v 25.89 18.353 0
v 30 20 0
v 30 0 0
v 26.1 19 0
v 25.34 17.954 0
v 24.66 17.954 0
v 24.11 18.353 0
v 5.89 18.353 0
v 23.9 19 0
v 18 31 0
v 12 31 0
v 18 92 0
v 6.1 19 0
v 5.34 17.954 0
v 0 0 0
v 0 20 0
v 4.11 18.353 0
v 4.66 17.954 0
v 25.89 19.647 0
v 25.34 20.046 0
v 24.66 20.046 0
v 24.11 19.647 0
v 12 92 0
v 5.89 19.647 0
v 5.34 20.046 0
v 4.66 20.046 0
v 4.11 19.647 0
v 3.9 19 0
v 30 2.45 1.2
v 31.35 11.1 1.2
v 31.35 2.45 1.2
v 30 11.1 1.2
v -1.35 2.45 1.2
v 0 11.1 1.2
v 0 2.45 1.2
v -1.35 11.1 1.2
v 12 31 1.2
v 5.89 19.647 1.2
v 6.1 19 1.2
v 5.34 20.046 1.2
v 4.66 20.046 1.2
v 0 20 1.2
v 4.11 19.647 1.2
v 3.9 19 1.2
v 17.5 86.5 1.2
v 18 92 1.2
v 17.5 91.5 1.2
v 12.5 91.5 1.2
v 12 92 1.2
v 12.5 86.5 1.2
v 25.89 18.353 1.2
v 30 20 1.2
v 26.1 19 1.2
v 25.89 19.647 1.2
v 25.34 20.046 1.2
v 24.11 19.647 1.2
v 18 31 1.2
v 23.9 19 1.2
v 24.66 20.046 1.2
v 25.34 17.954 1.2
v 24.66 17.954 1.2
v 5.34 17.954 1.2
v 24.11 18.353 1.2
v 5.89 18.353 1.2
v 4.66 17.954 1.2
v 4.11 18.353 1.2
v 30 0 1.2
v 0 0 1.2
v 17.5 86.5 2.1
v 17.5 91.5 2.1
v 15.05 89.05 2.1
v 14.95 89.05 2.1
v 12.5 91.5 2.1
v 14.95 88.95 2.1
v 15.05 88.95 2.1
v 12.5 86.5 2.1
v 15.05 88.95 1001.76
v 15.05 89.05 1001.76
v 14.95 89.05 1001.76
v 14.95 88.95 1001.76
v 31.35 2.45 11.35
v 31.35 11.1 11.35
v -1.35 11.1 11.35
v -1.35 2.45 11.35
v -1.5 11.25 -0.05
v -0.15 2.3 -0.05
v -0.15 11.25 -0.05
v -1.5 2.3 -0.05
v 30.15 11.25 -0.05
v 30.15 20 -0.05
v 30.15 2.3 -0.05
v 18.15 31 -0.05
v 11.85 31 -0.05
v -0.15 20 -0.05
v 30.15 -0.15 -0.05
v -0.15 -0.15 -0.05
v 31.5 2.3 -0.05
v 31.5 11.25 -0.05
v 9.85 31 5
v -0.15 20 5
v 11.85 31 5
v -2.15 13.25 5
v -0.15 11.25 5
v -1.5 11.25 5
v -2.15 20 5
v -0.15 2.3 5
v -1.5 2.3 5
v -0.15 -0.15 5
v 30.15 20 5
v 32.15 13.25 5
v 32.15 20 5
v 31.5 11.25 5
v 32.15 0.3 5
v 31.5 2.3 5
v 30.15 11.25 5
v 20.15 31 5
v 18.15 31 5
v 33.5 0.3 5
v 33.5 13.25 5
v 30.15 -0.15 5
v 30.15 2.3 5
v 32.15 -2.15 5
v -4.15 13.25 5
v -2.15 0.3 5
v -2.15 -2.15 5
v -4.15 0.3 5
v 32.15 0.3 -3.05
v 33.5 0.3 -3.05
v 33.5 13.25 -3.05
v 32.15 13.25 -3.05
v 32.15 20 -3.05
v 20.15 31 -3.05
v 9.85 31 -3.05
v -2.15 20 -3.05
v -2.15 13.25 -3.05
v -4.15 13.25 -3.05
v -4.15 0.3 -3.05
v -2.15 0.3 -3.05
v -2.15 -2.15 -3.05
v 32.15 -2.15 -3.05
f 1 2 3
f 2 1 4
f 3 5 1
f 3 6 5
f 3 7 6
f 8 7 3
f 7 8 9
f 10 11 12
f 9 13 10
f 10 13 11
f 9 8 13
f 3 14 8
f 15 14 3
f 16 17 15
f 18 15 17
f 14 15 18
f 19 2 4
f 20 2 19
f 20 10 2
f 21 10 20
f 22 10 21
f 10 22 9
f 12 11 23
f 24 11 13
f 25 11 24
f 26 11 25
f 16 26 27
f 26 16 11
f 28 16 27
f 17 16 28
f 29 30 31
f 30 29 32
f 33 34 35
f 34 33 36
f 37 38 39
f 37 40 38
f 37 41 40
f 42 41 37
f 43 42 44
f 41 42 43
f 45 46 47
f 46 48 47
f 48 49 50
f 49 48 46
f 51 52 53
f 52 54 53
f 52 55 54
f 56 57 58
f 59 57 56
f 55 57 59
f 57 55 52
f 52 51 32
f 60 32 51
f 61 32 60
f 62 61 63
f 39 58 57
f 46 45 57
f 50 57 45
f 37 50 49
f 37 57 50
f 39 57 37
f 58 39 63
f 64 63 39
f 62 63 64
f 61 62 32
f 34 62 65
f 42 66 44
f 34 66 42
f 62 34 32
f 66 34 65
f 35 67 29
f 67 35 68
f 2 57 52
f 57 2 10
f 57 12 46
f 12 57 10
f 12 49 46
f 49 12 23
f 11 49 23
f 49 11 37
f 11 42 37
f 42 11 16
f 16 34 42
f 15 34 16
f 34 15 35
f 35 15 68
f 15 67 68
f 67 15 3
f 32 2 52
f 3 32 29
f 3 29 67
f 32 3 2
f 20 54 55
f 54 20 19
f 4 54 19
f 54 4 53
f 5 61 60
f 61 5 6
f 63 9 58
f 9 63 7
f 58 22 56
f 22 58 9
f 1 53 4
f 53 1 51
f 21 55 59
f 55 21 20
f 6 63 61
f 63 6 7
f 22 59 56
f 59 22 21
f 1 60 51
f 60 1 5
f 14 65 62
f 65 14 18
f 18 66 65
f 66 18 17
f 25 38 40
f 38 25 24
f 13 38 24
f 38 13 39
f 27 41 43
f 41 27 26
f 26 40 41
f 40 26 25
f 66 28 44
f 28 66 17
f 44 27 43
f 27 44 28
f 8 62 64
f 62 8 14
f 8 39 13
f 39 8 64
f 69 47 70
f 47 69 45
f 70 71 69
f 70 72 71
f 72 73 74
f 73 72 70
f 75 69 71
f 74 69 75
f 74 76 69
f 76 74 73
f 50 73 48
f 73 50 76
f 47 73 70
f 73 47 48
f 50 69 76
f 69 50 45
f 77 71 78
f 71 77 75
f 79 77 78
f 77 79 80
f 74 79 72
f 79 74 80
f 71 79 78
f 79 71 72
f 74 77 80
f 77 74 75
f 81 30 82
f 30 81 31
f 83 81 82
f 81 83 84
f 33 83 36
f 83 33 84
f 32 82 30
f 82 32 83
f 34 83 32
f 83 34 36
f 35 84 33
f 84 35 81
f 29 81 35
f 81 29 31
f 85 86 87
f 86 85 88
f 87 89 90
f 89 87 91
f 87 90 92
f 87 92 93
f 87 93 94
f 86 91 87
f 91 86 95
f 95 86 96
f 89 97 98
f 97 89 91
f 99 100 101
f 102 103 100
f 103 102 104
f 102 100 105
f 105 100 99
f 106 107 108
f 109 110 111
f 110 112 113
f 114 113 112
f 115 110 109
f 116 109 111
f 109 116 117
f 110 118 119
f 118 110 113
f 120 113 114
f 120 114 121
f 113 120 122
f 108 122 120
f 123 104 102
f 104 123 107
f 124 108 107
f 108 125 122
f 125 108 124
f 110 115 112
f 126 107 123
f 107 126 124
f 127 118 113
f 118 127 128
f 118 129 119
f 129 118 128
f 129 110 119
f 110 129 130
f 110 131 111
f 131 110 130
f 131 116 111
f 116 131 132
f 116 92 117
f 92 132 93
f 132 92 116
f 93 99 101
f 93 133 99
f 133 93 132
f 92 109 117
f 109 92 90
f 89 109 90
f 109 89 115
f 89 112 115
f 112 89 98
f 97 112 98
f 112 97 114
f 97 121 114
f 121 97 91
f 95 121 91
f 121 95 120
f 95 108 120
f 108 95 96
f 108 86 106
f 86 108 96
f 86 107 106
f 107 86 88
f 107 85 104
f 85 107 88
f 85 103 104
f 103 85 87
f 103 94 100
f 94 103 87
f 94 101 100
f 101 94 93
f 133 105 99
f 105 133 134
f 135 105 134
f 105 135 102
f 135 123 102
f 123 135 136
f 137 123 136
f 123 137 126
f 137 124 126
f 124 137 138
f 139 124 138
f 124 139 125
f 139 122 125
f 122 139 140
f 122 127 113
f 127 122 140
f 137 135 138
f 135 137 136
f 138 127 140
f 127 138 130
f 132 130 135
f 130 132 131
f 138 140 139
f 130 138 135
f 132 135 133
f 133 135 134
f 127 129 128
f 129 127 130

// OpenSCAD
// ----- ----- Declaração de Variáveis ----- ----- //
res=10;
folga1=0.15;
folga2=0.05;

base_B=30;
base_b=6;
alt_trap=11;
l_senis=61;
l_cil_senis=19;
entre_cil=20;
r_cil=2.2/2;
li_senis=20;
esp_senis=1.2;

esp_bar=2;
alt_bar=5;
alt_bar2=3;
x_bar=5;
y_bar=5;
z_bar=5;

x_cnct=32.7;
y_cnct=8.65;
z_cnct=11.35-esp_senis;
li_cnct_senis=2.45;

x_chip=5;
y_chip=5;
z_chip=0.9;

x_FSV=0.1;
y_FSV=0.1;
z_FSV=0.01;

where_y_FSV=li_senis+alt_trap+l_senis-3;
where_z_FSV=esp_senis+0.9-0.35;

// ----- ----- Chip ----- ----- //
translate([base_B/2-x_chip/2,where_y_FSV-y_chip/2,esp_senis])cube([x_chip,y_chip,z_chip]);

// ----- ----- FSV ----- ----- //
#translate([base_B/2-x_FSV/2,where_y_FSV-y_FSV/2,where_z_FSV])cube([x_FSV,y_FSV,z_FSV]);
#translate([base_B/2-x_FSV/2,where_y_FSV-y_FSV/2,z_FSV+where_z_FSV])cube([x_FSV,y_FSV,1000]);

// ----- ----- PCB ----- ----- //
difference(){
    linear_extrude(esp_senis)
    polygon(points=[[0,0],
                    [base_B,0],
                    [base_B,li_senis],
                    [base_B/2+base_b/2,li_senis+alt_trap],
                    [base_B/2+base_b/2,li_senis+alt_trap+l_senis],
                    [base_B/2-base_b/2,li_senis+alt_trap+l_senis],
                    [base_B/2-base_b/2,li_senis+alt_trap],
                    [0,li_senis]]);
    #translate([base_B/2+entre_cil/2,l_cil_senis,0])cylinder(esp_senis,r_cil,r_cil,$fn=res);
    #translate([base_B/2-entre_cil/2,l_cil_senis,0])cylinder(esp_senis,r_cil,r_cil,$fn=res);
}

// ----- ----- Conector ----- ----- //
translate([base_B/2-x_cnct/2,li_cnct_senis,esp_senis])cube([x_cnct,y_cnct,z_cnct]);


// ----- ----- Suporte para a PCB ----- ----- //
translate([0,0,-folga2])
linear_extrude(alt_bar+folga2)
polygon(points=[[-folga1,-folga1],
                [base_B+folga1,-folga1],
                [base_B+folga1,li_cnct_senis-folga1],//
                [base_B/2+x_cnct/2+folga1,li_cnct_senis-folga1],//
                [base_B/2+x_cnct/2+folga1,li_cnct_senis+y_cnct+folga1],//
                [base_B+folga1,li_cnct_senis+y_cnct+folga1],//
                [base_B+folga1,li_senis],
                [base_B/2+base_b/2+folga1,li_senis+alt_trap],
                [base_B/2+base_b/2+folga1+esp_bar,li_senis+alt_trap],
                [base_B+folga1+esp_bar,li_senis],
                [base_B+folga1+esp_bar,li_cnct_senis+y_cnct+folga1+esp_bar],//
                [base_B/2+x_cnct/2+folga1+esp_bar,li_cnct_senis+y_cnct+folga1+esp_bar],//
                [base_B/2+x_cnct/2+folga1+esp_bar,li_cnct_senis-folga1-esp_bar],//
                [base_B+folga1+esp_bar,li_cnct_senis-folga1-esp_bar],//
                [base_B+folga1+esp_bar,-folga1-esp_bar],
                [-folga1-esp_bar,-folga1-esp_bar],
                [-folga1-esp_bar,li_cnct_senis-folga1-esp_bar],//
                [-folga1-2*esp_bar,li_cnct_senis-folga1-esp_bar],//
                [-folga1-2*esp_bar,li_cnct_senis+y_cnct+folga1+esp_bar],//
                [-folga1-esp_bar,li_cnct_senis+y_cnct+folga1+esp_bar],//
                [-folga1-esp_bar,li_senis],
                [base_B/2-base_b/2-folga1-esp_bar,li_senis+alt_trap],
                [base_B/2-base_b/2-folga1,li_senis+alt_trap],
                [-folga1,li_senis],
                [-folga1,li_cnct_senis+y_cnct+folga1],//
                [-folga1+base_B/2-x_cnct/2,li_cnct_senis+y_cnct+folga1],//
                [-folga1+base_B/2-x_cnct/2,li_cnct_senis-folga1],//
                [-folga1,li_cnct_senis-folga1]]);
         
translate([0,0,-folga2-alt_bar2])
linear_extrude(alt_bar2)
polygon(points=[[base_B/2+base_b/2+folga1+esp_bar,li_senis+alt_trap],
                [base_B+folga1+esp_bar,li_senis],
                [base_B+folga1+esp_bar,li_cnct_senis+y_cnct+folga1+esp_bar],//
                [base_B/2+x_cnct/2+folga1+esp_bar,li_cnct_senis+y_cnct+folga1+esp_bar],//
                [base_B/2+x_cnct/2+folga1+esp_bar,li_cnct_senis-folga1-esp_bar],//
                [base_B+folga1+esp_bar,li_cnct_senis-folga1-esp_bar],//
                [base_B+folga1+esp_bar,-folga1-esp_bar],
                [-folga1-esp_bar,-folga1-esp_bar],
                [-folga1-esp_bar,li_cnct_senis-folga1-esp_bar],//
                [-folga1-2*esp_bar,li_cnct_senis-folga1-esp_bar],//
                [-folga1-2*esp_bar,li_cnct_senis+y_cnct+folga1+esp_bar],//
                [-folga1-esp_bar,li_cnct_senis+y_cnct+folga1+esp_bar],//
                [-folga1-esp_bar,li_senis],
                [base_B/2-base_b/2-folga1-esp_bar,li_senis+alt_trap]]);
